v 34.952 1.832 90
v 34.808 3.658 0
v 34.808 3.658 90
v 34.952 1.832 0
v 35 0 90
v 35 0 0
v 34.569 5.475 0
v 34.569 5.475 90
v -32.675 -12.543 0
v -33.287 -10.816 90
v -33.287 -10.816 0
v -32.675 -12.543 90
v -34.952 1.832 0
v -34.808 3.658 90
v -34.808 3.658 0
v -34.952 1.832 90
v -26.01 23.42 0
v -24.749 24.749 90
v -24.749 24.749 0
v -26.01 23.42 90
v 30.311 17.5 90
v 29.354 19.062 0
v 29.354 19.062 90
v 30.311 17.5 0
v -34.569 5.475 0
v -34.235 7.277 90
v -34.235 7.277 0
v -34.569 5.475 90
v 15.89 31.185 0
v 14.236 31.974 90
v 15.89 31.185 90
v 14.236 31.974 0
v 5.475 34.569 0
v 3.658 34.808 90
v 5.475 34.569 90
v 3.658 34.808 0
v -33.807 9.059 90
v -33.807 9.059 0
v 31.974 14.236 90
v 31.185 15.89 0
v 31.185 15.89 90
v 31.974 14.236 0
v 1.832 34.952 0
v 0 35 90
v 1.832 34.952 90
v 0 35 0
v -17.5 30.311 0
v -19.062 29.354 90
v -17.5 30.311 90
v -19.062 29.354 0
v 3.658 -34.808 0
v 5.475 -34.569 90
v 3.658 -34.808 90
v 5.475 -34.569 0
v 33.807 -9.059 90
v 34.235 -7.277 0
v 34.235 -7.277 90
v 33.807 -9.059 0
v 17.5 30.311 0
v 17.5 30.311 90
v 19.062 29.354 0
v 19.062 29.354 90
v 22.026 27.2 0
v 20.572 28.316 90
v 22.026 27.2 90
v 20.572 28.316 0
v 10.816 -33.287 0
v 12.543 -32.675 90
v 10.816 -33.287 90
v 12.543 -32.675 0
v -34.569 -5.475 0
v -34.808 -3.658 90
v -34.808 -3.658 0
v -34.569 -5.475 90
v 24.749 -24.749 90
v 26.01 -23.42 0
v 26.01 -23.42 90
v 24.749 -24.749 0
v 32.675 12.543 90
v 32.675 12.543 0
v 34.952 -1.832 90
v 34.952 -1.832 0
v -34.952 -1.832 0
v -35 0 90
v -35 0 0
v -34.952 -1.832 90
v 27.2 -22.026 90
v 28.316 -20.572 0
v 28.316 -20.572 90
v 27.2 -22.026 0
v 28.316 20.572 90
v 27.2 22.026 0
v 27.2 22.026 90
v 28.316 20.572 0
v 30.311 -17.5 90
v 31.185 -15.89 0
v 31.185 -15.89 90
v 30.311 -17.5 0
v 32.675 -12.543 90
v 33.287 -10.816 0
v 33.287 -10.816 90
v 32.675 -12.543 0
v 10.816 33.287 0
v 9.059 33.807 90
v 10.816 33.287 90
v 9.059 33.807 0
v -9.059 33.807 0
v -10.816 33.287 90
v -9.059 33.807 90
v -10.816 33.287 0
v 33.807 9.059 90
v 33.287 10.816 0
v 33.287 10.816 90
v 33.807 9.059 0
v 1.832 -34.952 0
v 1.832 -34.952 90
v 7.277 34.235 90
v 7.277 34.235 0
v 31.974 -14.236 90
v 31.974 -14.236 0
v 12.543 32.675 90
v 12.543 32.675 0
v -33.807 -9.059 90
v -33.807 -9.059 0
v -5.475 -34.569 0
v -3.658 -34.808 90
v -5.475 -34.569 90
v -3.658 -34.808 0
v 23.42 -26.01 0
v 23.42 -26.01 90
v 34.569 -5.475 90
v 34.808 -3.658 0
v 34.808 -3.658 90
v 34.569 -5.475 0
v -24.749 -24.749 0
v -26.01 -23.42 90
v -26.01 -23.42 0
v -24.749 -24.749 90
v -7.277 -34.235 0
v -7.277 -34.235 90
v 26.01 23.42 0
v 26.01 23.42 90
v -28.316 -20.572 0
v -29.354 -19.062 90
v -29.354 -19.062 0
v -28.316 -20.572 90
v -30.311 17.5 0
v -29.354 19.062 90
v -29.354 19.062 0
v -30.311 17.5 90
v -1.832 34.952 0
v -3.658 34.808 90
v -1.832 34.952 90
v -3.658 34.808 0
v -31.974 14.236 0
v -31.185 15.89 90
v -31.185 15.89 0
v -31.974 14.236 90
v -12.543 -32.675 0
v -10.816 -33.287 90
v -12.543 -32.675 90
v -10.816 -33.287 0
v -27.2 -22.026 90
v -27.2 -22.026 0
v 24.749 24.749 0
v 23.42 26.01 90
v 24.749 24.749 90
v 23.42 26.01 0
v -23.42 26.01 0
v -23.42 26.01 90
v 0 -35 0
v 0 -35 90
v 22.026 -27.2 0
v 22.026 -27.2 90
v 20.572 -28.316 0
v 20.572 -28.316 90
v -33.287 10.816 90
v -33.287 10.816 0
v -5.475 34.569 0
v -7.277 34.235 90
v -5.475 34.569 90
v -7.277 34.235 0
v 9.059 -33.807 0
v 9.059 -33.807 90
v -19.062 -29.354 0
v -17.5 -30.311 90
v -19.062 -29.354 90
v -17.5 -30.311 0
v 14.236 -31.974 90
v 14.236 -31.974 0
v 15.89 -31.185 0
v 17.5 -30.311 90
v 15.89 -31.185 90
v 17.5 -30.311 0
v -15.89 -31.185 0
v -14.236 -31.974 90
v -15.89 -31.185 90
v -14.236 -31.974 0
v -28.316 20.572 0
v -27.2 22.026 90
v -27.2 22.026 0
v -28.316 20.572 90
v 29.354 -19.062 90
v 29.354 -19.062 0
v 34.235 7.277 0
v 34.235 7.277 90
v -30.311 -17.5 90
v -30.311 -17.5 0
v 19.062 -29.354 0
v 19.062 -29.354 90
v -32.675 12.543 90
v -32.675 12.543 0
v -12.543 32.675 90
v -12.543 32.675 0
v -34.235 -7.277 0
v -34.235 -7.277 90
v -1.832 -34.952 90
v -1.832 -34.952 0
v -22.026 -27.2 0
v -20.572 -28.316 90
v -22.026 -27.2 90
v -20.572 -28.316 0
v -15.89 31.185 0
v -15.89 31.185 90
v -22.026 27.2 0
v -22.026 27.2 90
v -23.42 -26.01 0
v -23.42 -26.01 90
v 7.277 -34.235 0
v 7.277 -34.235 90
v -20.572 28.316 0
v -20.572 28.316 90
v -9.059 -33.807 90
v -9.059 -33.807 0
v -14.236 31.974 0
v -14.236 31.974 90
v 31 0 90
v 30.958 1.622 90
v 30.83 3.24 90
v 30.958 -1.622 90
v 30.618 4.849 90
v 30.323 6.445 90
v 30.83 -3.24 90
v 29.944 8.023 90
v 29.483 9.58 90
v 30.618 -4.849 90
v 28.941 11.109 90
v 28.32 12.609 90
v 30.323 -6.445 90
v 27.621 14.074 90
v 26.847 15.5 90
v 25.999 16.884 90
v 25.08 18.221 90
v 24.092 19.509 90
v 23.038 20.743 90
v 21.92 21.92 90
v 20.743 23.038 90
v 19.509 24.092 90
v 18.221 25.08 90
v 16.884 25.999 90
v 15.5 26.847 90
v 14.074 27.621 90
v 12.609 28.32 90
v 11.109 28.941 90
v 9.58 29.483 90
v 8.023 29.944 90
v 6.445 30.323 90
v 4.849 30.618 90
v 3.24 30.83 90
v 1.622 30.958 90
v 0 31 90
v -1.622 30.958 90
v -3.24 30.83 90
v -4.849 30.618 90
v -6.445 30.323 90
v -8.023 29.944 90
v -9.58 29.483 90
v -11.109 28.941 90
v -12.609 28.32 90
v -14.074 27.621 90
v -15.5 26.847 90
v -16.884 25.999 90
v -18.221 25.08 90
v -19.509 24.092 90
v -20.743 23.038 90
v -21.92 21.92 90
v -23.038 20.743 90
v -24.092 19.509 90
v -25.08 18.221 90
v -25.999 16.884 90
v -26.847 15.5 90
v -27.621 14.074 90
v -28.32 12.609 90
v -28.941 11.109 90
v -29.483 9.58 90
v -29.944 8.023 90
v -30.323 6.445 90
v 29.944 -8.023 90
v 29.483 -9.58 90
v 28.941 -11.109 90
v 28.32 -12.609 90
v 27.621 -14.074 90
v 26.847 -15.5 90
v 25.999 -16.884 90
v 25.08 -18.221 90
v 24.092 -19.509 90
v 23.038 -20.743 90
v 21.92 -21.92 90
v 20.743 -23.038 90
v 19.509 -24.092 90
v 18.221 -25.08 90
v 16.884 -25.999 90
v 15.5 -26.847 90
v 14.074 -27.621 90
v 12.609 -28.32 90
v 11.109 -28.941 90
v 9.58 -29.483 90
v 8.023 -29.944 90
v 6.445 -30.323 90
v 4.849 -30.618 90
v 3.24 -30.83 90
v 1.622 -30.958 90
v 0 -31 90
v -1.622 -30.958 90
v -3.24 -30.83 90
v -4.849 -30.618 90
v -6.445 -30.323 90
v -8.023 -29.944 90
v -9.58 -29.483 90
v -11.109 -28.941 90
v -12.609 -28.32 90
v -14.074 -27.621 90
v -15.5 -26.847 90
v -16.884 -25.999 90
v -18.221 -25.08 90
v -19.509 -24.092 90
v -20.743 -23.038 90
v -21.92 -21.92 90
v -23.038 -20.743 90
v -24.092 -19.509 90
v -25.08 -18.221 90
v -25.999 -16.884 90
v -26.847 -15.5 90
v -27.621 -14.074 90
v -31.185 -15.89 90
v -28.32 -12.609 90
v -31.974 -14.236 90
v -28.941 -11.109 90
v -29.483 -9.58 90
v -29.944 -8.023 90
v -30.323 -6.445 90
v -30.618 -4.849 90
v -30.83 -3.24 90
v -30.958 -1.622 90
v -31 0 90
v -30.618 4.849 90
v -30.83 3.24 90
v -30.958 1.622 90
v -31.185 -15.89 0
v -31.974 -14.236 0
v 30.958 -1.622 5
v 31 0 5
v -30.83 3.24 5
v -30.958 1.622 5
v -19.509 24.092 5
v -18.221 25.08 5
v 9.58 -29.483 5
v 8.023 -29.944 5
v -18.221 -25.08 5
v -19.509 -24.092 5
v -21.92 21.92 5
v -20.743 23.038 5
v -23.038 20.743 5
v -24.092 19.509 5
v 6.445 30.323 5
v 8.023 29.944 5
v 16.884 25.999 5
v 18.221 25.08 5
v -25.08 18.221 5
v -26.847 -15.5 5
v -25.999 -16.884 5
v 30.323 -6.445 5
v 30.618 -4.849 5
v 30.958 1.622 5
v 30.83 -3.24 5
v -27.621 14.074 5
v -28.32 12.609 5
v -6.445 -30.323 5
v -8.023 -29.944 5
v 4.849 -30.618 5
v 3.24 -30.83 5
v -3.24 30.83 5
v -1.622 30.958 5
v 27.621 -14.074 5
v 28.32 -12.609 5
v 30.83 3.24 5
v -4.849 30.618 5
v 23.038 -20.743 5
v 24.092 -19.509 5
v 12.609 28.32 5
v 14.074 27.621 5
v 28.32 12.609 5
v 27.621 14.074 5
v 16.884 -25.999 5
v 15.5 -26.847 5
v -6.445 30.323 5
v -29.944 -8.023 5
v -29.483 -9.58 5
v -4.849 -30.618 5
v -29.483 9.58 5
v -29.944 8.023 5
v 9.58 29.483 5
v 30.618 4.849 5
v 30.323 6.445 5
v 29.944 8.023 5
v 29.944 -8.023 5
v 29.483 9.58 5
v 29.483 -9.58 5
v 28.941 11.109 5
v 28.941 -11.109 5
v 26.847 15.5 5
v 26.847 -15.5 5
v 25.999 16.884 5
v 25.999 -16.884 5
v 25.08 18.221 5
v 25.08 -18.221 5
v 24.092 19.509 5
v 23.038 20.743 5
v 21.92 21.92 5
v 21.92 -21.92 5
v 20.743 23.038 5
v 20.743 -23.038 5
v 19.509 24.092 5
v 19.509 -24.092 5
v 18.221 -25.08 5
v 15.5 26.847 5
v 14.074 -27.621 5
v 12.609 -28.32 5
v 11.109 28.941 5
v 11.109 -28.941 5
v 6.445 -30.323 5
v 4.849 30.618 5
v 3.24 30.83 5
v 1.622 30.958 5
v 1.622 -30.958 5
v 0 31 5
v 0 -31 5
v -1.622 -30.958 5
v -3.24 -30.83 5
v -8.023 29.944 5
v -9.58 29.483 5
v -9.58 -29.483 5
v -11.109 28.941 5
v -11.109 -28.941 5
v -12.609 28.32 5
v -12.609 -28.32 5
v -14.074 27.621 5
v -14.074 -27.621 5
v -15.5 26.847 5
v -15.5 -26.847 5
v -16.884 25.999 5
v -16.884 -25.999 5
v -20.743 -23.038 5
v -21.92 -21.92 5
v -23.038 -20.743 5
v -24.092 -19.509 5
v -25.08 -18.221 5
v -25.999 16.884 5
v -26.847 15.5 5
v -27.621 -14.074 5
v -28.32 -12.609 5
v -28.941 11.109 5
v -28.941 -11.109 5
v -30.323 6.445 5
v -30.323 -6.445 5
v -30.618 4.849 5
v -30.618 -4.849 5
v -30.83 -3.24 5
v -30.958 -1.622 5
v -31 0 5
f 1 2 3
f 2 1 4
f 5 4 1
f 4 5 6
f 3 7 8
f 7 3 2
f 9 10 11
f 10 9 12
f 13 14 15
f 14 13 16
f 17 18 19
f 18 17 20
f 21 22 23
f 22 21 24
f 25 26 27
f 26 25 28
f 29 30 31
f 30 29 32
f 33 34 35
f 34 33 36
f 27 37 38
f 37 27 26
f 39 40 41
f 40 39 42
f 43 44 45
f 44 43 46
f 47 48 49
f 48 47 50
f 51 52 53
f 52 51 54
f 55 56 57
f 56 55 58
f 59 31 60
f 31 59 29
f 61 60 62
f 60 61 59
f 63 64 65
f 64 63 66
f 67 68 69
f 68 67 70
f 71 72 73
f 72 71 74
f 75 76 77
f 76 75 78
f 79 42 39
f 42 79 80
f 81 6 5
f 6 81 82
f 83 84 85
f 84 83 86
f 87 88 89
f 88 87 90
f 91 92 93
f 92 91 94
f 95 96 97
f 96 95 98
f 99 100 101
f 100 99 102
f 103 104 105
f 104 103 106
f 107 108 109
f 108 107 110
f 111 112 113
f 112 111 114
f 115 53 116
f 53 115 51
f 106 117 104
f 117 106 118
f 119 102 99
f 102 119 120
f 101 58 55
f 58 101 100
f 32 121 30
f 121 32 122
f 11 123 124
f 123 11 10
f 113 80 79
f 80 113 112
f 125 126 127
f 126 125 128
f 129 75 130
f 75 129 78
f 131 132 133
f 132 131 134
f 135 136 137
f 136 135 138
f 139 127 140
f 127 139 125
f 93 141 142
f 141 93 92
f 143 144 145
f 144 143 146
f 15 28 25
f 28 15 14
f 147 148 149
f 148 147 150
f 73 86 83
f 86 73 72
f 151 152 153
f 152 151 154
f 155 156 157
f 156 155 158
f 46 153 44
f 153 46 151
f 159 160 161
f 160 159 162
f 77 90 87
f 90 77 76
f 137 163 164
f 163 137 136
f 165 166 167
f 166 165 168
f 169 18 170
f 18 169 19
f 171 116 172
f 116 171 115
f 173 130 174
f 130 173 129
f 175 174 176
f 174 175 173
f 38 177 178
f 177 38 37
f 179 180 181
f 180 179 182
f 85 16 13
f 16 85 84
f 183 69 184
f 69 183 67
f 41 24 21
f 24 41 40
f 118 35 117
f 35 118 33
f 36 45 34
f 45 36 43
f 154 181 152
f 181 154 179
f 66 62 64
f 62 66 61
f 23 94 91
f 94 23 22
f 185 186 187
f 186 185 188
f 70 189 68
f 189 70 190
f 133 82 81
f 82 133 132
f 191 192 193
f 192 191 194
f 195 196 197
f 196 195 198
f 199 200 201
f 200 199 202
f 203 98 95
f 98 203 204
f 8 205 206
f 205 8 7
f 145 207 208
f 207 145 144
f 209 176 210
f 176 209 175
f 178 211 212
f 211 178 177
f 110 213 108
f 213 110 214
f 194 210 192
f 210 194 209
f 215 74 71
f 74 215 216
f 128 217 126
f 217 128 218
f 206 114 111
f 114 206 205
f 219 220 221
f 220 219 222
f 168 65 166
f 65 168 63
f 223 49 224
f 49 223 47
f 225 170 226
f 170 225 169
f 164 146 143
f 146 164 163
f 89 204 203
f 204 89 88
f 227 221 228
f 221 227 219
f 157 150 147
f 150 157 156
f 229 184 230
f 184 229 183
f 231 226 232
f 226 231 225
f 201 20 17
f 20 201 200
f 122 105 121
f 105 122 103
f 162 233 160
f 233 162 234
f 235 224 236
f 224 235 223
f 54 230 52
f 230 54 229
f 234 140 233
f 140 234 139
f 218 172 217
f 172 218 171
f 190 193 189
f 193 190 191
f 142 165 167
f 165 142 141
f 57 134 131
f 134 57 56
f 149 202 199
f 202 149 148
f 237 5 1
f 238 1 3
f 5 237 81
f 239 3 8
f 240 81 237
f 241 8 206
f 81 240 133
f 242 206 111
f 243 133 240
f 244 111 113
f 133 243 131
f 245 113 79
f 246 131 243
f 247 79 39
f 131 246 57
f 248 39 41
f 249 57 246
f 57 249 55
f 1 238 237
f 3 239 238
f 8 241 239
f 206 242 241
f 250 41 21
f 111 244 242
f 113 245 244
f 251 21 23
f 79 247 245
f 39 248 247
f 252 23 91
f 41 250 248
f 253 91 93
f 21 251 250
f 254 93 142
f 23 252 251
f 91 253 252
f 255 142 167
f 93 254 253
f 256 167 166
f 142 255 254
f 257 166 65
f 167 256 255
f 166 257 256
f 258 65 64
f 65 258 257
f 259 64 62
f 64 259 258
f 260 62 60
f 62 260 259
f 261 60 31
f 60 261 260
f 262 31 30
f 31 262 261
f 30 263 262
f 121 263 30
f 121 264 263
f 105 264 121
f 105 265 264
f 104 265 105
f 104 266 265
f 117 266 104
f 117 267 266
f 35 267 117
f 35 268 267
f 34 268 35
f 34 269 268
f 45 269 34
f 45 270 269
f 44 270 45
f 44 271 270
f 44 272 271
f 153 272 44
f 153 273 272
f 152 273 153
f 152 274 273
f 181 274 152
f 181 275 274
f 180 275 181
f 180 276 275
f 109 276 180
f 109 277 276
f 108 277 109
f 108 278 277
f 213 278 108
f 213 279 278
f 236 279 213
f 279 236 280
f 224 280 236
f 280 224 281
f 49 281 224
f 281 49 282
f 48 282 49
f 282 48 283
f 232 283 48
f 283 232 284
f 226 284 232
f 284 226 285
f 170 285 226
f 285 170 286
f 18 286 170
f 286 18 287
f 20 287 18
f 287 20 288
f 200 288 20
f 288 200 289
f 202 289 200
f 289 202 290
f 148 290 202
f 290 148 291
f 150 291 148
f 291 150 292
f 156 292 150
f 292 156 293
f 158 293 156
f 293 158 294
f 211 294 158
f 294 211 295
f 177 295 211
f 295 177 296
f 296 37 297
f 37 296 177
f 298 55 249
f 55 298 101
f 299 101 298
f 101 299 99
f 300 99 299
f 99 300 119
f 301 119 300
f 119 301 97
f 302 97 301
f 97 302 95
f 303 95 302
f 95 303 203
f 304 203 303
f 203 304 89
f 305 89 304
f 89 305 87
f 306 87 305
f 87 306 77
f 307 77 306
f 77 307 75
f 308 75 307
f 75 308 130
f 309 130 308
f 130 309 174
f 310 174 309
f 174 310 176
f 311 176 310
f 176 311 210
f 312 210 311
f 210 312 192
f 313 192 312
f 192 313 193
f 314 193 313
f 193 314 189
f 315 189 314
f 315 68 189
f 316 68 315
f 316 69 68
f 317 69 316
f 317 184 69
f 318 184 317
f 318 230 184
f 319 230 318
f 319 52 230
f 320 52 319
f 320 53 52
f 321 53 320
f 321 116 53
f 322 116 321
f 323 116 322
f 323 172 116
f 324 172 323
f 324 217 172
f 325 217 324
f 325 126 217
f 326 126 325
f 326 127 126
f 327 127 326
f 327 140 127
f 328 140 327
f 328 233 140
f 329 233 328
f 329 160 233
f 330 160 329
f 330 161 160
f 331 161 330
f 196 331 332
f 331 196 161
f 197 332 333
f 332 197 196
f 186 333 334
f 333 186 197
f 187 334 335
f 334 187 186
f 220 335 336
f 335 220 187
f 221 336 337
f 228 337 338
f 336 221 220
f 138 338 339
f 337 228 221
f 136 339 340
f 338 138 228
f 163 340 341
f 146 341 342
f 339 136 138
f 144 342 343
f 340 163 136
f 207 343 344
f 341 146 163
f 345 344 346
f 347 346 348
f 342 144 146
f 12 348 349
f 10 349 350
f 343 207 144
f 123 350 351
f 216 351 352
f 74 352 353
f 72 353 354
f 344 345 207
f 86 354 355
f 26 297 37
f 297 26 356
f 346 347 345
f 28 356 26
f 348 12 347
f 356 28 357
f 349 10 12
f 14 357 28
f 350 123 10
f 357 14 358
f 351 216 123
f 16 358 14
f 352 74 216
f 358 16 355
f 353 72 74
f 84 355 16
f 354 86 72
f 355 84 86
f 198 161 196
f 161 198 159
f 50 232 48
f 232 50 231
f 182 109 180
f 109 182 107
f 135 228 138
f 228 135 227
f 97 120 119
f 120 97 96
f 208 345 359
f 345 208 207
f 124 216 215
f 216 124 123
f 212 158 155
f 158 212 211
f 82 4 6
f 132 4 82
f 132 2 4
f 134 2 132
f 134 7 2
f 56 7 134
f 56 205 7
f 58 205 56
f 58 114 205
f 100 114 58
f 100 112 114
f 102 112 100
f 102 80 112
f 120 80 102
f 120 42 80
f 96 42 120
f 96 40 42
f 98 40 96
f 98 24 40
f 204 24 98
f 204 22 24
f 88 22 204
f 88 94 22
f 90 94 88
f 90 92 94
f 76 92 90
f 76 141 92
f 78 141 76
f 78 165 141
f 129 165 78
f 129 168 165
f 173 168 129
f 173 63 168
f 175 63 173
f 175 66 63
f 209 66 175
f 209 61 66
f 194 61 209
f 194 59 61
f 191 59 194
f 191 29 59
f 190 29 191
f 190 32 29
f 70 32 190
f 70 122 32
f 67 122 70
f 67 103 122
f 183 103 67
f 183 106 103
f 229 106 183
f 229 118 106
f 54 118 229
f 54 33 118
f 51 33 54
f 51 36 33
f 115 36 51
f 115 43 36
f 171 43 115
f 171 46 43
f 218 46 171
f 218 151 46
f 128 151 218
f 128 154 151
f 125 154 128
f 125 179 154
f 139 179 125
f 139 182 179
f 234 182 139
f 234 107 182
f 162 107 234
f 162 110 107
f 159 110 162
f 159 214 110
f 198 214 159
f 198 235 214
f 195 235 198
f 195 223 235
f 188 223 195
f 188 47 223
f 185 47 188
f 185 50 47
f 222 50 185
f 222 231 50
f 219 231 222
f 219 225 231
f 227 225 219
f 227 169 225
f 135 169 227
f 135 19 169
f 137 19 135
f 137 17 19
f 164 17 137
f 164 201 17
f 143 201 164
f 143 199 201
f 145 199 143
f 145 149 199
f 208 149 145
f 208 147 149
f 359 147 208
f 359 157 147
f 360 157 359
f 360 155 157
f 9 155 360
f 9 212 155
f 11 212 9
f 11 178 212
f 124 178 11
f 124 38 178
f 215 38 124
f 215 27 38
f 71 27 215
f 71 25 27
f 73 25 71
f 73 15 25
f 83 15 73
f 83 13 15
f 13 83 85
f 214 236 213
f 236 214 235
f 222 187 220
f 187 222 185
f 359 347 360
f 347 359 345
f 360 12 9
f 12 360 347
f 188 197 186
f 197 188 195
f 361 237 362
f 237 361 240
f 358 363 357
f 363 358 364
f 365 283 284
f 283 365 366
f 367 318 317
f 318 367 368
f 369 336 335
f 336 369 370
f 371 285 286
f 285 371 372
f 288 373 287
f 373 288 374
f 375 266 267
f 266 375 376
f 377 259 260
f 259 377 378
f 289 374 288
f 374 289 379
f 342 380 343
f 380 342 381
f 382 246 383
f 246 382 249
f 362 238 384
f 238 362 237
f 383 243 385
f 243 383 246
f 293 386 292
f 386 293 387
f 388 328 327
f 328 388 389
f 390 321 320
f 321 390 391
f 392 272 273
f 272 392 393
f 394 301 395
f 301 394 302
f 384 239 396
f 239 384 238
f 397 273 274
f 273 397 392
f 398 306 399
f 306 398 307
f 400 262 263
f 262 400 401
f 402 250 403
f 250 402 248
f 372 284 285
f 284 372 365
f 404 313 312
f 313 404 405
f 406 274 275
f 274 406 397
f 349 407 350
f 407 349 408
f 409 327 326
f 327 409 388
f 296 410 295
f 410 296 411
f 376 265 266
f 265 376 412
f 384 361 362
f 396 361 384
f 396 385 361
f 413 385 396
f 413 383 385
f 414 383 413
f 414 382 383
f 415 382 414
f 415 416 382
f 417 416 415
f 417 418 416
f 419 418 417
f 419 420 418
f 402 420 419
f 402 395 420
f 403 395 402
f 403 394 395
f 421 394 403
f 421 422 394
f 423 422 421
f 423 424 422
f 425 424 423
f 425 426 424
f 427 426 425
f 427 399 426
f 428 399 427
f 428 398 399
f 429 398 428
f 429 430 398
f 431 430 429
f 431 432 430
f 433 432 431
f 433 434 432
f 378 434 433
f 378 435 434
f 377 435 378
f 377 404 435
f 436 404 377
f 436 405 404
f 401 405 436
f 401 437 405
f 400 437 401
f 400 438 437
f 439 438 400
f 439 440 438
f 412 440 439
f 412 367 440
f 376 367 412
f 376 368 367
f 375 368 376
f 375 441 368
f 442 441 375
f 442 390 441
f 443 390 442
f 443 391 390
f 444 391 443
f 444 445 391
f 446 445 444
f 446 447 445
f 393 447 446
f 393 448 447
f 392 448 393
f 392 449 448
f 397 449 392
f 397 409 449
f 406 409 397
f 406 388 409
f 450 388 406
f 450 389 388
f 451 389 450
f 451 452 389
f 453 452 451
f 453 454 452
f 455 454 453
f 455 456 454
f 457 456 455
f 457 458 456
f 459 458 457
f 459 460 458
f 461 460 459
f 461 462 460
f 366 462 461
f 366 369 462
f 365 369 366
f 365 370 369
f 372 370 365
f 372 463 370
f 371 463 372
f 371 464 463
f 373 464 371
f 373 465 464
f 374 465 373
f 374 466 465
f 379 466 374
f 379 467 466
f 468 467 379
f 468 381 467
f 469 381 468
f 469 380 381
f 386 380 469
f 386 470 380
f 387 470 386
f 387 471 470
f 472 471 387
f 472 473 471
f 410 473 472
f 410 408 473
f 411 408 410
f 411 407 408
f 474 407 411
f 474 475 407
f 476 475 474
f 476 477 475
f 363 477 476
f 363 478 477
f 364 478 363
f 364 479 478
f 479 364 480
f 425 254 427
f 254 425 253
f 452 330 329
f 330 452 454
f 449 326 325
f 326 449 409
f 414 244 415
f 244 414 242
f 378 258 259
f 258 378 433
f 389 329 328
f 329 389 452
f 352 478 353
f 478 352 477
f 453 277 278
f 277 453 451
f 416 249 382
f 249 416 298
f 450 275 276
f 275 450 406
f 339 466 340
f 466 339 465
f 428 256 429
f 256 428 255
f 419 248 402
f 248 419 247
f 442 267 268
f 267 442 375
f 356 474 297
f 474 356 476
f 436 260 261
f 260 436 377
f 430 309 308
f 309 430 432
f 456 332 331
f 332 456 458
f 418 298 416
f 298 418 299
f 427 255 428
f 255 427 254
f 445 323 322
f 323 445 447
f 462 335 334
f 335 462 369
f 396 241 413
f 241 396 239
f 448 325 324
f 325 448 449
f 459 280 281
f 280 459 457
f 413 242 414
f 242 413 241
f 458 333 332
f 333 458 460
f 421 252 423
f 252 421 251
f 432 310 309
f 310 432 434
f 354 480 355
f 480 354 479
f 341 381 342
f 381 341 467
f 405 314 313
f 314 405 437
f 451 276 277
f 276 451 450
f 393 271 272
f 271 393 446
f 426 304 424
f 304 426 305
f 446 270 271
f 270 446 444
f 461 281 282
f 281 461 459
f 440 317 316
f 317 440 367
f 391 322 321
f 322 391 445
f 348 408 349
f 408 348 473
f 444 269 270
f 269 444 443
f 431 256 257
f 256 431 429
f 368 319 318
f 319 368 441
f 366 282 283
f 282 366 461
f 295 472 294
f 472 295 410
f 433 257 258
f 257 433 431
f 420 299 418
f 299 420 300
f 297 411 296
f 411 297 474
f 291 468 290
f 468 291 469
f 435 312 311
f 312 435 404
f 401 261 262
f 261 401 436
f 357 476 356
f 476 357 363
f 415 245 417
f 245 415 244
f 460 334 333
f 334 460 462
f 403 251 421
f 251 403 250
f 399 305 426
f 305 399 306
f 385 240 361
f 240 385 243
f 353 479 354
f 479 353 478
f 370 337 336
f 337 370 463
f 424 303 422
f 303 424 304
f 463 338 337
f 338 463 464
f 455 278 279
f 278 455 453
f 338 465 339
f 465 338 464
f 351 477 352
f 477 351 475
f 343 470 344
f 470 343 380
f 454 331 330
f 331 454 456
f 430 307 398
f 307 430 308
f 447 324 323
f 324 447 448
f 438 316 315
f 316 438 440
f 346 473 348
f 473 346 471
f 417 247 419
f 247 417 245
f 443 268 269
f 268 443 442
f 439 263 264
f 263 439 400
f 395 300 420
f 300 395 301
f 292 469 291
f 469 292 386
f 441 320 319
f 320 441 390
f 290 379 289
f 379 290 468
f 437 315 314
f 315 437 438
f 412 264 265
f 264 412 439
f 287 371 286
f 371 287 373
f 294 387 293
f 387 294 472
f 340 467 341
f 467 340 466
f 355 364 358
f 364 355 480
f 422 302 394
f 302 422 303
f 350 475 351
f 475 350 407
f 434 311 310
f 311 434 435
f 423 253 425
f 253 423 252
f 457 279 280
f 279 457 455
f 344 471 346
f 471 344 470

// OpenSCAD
// ===== 例題4: ペン立て（コップ型）=====
// 外側の円柱から内側をくり抜いて、入れ物を作ります。

outer_r = 35;   // 外側の半径(mm)
wall    = 4;    // かべのあつさ(mm)
height  = 90;   // たかさ(mm)
bottom  = 5;    // 底のあつさ(mm)

$fn = 120;

difference() {
  cylinder(r = outer_r, h = height);                       // 外側
  translate([0, 0, bottom])                                // 底を残して
    cylinder(r = outer_r - wall, h = height);              // 内側をくり抜く
}
